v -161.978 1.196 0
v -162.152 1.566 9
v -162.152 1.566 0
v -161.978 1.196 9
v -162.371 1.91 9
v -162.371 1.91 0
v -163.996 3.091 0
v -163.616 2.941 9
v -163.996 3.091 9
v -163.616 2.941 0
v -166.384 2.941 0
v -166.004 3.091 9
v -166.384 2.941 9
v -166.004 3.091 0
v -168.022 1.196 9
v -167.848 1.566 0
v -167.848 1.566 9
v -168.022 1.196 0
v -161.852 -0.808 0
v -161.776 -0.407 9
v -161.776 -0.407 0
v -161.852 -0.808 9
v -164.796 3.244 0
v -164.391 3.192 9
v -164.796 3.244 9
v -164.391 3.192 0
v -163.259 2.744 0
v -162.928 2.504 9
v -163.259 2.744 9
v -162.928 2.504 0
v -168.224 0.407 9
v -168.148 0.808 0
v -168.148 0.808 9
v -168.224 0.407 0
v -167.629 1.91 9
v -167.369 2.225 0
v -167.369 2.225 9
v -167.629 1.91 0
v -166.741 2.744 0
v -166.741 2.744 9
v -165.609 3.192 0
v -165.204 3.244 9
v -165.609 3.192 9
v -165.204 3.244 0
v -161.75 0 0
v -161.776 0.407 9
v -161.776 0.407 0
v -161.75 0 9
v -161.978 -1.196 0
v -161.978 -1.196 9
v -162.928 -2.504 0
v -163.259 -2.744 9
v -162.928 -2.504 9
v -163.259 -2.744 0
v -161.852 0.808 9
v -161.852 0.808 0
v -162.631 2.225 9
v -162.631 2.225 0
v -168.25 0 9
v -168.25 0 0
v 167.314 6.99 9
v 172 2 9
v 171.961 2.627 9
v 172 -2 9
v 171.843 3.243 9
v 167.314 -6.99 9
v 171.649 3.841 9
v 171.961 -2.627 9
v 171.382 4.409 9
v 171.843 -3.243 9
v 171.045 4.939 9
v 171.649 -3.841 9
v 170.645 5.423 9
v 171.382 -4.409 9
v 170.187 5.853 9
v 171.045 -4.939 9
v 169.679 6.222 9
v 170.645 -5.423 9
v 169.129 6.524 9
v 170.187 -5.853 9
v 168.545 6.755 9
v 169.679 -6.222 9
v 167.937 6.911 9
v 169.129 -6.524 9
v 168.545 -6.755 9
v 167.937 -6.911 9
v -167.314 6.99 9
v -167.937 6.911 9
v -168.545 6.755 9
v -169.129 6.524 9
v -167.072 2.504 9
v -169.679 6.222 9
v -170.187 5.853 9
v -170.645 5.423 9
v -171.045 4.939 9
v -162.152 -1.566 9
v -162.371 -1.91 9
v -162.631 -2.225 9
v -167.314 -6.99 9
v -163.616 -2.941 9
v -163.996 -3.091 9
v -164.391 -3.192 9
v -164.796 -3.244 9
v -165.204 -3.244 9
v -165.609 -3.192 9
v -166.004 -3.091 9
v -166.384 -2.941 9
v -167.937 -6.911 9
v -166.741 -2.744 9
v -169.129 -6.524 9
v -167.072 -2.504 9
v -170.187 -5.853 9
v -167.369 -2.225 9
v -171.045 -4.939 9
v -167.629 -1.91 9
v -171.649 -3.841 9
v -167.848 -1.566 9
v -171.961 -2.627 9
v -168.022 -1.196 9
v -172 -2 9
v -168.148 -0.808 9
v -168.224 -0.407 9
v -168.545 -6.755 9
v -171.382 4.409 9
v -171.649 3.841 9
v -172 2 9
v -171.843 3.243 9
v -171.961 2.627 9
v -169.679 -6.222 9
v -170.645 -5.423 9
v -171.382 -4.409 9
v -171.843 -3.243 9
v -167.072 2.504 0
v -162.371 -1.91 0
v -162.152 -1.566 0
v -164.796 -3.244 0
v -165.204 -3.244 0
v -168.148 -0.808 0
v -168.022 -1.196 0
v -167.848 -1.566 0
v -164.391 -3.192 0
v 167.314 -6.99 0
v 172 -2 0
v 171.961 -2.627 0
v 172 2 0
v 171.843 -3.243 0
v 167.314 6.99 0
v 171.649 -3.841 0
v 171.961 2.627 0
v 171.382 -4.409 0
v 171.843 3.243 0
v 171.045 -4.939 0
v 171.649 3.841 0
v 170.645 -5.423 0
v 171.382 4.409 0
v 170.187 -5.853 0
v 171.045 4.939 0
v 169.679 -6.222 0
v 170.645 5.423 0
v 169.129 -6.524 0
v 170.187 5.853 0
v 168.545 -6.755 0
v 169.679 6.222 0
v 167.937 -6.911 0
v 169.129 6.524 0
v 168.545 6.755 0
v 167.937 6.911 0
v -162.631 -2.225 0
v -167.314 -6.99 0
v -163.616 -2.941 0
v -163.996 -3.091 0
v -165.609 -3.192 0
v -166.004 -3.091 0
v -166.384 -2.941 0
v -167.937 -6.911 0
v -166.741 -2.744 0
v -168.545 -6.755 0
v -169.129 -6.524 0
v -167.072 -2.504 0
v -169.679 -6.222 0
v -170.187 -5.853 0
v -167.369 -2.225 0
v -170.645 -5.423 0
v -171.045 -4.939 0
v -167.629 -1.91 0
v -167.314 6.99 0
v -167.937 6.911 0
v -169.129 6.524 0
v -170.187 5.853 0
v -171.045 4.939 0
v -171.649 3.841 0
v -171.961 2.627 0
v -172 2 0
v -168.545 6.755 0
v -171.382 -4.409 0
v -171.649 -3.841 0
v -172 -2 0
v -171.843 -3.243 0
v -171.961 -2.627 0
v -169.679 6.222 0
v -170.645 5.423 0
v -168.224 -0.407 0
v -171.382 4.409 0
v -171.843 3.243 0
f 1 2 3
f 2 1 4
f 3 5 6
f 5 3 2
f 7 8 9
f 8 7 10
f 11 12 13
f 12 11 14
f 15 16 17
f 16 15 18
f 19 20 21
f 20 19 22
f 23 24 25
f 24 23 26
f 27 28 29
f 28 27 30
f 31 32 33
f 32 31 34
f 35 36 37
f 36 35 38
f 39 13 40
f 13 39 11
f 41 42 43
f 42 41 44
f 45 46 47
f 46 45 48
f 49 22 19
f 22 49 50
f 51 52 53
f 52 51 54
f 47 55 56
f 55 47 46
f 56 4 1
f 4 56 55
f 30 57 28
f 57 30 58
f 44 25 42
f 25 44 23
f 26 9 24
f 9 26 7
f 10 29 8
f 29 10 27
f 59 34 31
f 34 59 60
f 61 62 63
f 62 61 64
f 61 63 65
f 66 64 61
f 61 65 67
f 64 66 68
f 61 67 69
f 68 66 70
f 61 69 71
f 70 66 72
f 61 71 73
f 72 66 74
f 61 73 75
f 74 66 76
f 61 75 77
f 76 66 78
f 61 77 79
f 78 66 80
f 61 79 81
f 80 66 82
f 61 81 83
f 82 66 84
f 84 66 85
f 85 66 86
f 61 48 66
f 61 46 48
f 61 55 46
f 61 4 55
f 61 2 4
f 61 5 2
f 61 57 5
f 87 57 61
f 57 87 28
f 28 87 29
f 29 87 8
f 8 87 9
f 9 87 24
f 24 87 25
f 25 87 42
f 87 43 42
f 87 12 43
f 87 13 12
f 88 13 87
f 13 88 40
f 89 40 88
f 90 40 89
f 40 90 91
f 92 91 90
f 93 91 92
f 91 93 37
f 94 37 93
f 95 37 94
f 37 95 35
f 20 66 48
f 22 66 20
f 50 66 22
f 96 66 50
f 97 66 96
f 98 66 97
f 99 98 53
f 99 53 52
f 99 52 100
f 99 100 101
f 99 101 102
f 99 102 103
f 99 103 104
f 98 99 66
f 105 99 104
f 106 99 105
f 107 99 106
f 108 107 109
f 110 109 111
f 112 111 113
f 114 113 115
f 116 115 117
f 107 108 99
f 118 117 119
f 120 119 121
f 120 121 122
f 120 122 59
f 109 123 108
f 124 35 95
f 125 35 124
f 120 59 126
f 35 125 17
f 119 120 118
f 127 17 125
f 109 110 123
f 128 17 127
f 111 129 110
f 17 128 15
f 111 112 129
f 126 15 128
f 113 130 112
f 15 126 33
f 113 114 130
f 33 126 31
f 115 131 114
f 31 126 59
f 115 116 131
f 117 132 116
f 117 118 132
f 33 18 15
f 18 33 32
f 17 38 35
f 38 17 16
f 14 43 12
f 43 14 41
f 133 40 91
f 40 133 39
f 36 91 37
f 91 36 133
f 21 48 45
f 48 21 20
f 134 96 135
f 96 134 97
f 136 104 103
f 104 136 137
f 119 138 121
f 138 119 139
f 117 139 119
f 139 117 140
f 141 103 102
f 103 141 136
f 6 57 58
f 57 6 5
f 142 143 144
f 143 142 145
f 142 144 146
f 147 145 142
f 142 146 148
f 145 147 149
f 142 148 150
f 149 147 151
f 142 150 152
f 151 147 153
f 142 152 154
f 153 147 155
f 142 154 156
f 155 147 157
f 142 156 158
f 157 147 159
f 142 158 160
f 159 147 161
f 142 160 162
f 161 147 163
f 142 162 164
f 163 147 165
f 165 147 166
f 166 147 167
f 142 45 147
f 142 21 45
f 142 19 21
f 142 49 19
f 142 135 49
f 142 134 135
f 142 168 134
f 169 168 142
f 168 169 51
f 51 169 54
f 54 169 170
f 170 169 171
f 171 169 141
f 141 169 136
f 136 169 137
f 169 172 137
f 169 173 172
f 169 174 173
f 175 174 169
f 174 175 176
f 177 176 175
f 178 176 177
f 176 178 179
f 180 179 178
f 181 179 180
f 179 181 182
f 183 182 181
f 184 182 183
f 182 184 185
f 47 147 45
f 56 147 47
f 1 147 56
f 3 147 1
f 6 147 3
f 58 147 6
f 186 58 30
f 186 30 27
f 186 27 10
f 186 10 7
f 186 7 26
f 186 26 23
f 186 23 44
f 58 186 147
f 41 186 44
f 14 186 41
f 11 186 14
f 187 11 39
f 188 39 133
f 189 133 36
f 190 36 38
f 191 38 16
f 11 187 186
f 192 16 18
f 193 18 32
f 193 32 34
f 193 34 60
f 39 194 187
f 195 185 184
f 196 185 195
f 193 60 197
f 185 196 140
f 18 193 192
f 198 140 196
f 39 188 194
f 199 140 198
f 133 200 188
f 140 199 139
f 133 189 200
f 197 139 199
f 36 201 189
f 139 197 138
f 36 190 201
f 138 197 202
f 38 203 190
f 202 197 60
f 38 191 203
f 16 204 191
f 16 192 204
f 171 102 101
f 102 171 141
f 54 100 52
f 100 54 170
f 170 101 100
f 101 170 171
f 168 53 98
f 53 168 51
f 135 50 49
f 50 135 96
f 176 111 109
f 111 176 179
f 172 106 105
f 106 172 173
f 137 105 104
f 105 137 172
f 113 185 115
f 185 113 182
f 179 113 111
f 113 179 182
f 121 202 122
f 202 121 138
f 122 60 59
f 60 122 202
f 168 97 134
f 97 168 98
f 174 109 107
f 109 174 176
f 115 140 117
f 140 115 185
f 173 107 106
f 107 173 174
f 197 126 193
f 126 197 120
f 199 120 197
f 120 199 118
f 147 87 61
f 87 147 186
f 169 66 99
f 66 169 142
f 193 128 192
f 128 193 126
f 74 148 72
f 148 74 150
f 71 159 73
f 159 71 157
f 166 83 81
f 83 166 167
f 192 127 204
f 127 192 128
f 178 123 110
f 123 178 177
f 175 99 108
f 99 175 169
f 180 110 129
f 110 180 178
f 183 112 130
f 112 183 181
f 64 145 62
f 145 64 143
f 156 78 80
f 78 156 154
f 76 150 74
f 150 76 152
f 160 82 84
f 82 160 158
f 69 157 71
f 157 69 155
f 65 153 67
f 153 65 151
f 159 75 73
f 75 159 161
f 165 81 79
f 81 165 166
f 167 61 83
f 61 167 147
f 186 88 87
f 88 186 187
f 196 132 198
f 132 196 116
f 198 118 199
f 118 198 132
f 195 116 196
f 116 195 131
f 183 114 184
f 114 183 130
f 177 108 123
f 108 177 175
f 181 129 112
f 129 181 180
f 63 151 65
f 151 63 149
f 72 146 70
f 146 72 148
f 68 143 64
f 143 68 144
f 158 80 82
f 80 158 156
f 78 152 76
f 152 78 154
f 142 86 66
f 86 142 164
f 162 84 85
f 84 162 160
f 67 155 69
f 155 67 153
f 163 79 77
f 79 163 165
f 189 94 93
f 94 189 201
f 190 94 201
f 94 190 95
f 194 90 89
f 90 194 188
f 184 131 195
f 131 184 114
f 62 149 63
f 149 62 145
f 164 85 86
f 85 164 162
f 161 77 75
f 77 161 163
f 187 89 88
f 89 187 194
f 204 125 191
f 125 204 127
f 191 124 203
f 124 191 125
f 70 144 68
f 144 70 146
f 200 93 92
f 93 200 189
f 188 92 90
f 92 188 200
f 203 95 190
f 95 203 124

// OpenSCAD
$fn = 50;


difference() {
	union() {
		hull() {
			translate(v = [-167.0000000000, 2.0000000000, 0]) {
				cylinder(h = 9, r = 5);
			}
			translate(v = [167.0000000000, 2.0000000000, 0]) {
				cylinder(h = 9, r = 5);
			}
			translate(v = [-167.0000000000, -2.0000000000, 0]) {
				cylinder(h = 9, r = 5);
			}
			translate(v = [167.0000000000, -2.0000000000, 0]) {
				cylinder(h = 9, r = 5);
			}
		}
	}
	union() {
		translate(v = [-165.0000000000, 0.0000000000, 0]) {
			cylinder(h = 9, r = 3.2500000000);
		}
		translate(v = [-165.0000000000, 0.0000000000, 0]) {
			cylinder(h = 9, r = 1.8000000000);
		}
		translate(v = [-165.0000000000, 0.0000000000, 0]) {
			cylinder(h = 9, r = 1.8000000000);
		}
		translate(v = [-165.0000000000, 0.0000000000, 0]) {
			cylinder(h = 9, r = 1.8000000000);
		}
	}
}
